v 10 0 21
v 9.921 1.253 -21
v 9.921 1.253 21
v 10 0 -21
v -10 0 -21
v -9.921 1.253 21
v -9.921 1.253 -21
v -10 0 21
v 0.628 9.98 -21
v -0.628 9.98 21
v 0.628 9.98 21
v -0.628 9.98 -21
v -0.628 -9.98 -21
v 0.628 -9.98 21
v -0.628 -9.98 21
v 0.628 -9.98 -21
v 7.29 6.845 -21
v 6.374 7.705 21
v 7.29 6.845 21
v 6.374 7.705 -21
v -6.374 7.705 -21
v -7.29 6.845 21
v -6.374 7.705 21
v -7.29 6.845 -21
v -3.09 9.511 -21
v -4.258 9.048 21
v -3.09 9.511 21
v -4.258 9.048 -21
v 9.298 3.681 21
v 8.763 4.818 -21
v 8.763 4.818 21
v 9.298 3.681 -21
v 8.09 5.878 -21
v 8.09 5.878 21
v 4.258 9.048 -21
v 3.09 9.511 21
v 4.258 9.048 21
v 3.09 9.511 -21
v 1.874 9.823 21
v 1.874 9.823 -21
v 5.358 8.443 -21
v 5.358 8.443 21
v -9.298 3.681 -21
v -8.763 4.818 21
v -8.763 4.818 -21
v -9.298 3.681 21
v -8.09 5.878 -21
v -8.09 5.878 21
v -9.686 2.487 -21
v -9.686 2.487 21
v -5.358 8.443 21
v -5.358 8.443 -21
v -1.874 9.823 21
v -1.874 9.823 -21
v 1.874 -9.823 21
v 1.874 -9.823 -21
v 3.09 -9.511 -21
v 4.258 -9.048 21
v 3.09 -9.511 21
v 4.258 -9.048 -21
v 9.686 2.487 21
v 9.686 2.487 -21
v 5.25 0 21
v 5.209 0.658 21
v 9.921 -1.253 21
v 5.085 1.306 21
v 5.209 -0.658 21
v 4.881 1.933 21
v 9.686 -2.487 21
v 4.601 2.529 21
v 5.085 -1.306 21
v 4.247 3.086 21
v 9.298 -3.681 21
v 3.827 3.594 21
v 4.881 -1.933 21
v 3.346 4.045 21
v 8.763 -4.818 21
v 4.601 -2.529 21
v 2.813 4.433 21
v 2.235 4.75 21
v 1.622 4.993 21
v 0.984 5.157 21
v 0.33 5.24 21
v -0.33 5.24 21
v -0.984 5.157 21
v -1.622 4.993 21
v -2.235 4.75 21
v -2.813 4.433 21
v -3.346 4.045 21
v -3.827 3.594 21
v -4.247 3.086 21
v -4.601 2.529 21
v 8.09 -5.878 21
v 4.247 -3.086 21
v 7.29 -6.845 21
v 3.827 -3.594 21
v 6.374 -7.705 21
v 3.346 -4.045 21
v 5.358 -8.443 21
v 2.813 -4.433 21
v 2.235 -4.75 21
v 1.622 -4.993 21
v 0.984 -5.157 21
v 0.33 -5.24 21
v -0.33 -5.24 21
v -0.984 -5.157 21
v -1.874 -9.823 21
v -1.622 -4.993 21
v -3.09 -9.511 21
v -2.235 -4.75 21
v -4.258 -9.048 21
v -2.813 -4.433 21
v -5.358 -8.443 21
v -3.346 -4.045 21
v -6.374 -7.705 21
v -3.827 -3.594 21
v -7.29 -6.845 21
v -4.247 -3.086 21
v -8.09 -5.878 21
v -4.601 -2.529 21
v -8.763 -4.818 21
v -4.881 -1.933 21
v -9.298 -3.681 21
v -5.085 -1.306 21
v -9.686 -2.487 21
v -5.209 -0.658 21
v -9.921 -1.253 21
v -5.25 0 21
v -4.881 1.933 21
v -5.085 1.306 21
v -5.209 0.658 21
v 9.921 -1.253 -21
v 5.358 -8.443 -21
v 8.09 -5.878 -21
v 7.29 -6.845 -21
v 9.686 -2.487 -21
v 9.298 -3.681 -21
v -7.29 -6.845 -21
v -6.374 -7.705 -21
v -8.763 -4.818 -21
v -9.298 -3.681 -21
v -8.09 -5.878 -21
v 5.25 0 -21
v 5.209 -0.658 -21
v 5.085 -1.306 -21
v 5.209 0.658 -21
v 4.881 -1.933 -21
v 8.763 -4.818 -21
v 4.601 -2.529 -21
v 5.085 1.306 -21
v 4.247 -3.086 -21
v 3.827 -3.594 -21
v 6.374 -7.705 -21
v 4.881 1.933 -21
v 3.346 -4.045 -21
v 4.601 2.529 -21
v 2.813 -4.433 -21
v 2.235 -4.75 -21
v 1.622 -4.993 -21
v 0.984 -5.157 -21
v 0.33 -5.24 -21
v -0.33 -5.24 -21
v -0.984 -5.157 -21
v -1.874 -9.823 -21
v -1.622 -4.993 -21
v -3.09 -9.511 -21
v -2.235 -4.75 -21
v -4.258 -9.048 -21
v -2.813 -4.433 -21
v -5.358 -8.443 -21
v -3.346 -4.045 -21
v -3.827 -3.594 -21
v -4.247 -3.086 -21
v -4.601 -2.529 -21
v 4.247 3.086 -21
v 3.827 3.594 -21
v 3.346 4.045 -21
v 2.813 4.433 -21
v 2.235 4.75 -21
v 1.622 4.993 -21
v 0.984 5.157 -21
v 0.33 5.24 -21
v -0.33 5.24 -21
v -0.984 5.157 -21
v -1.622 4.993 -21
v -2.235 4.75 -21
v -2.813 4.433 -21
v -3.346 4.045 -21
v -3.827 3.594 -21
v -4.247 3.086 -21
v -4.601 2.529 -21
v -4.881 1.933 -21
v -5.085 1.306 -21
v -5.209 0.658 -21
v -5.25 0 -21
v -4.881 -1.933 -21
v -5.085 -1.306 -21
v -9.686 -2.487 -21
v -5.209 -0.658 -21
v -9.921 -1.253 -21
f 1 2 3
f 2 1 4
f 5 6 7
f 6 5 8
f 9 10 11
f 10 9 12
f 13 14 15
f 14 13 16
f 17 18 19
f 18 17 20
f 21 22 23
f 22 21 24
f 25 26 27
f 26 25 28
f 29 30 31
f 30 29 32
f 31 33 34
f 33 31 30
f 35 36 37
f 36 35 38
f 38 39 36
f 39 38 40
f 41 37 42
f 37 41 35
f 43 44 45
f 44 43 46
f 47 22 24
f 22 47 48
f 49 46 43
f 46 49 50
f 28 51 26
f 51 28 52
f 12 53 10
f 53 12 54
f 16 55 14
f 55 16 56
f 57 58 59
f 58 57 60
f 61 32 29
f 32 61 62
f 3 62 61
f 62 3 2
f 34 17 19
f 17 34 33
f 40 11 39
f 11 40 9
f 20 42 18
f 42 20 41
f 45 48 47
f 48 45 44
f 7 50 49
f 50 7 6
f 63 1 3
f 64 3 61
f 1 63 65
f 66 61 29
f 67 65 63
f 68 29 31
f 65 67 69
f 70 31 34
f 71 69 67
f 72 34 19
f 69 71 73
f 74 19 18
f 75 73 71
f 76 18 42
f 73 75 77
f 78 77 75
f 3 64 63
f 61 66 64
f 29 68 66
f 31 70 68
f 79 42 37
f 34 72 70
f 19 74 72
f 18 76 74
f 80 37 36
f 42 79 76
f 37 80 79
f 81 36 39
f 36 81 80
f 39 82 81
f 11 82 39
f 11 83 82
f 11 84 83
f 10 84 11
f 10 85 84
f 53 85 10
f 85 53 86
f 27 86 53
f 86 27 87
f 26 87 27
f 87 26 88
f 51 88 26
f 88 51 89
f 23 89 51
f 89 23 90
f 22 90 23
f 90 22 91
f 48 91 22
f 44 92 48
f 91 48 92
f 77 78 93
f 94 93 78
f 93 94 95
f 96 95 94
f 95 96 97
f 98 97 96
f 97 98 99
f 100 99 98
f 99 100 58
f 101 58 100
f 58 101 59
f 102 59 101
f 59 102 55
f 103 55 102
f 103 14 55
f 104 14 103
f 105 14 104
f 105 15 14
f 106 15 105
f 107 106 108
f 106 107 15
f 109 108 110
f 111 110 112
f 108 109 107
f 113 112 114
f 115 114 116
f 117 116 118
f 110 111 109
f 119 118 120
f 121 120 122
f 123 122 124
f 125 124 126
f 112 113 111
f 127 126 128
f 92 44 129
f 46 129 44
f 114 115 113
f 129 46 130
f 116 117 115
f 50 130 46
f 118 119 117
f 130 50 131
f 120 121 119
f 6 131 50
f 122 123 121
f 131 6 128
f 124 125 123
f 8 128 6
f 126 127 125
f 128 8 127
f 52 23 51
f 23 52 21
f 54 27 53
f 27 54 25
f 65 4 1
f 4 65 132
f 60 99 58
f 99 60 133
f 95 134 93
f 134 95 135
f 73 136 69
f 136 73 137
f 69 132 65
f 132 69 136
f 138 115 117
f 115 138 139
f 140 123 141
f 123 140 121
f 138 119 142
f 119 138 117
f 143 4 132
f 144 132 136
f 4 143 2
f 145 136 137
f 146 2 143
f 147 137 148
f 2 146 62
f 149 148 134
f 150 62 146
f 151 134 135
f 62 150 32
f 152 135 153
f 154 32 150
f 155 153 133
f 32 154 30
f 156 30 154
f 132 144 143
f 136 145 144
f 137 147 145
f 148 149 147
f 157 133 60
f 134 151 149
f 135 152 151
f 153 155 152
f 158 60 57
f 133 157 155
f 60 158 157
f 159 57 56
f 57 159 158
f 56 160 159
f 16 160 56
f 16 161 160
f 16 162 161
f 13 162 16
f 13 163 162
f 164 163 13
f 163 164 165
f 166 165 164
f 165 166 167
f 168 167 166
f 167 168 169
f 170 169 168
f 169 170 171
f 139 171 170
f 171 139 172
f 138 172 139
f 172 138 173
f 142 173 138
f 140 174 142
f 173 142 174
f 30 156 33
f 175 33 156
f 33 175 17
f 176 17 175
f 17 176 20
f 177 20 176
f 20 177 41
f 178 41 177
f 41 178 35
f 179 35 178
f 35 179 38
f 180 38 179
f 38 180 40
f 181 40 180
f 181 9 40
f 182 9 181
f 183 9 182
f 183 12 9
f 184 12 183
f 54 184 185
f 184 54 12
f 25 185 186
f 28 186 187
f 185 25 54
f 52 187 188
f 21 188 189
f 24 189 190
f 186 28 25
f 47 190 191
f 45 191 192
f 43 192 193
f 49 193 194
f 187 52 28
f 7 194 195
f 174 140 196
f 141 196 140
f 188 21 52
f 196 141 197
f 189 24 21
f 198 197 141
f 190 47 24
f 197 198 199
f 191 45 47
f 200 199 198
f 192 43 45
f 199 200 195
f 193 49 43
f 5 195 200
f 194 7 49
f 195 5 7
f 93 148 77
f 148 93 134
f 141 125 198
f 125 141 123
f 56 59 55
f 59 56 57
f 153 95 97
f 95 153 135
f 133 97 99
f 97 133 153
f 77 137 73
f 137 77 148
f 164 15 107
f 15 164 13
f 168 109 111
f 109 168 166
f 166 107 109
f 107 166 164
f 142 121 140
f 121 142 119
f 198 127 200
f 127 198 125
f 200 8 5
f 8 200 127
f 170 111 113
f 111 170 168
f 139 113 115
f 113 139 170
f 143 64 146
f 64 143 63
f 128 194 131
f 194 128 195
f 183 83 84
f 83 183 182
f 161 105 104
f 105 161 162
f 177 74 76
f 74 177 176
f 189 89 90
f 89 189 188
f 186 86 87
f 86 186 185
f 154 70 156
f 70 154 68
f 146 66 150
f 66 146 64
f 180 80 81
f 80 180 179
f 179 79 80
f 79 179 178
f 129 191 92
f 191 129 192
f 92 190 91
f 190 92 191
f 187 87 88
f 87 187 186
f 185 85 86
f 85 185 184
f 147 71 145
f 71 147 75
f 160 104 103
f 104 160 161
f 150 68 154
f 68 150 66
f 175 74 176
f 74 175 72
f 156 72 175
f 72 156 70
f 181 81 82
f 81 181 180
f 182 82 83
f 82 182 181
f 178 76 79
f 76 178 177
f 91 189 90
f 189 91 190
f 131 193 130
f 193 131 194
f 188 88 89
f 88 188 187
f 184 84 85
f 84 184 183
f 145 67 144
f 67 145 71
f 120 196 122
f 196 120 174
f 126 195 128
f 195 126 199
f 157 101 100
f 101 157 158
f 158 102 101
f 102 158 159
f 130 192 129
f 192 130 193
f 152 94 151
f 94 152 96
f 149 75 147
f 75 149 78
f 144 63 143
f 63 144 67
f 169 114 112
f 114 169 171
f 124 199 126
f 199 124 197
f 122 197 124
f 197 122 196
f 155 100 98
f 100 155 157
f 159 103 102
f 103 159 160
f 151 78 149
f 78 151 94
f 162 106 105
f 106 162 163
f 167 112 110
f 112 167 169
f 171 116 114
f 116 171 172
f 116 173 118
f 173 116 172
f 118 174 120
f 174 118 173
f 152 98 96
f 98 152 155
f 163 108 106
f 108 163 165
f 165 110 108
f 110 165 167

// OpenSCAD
$fn = 50;


difference() {
	union() {
		translate(v = [0, 0, -21.0000000000]) {
			cylinder(h = 42, r = 10.0000000000);
		}
	}
	union() {
		translate(v = [0, 0, -100.0000000000]) {
			cylinder(h = 200, r = 5.2500000000);
		}
	}
}
